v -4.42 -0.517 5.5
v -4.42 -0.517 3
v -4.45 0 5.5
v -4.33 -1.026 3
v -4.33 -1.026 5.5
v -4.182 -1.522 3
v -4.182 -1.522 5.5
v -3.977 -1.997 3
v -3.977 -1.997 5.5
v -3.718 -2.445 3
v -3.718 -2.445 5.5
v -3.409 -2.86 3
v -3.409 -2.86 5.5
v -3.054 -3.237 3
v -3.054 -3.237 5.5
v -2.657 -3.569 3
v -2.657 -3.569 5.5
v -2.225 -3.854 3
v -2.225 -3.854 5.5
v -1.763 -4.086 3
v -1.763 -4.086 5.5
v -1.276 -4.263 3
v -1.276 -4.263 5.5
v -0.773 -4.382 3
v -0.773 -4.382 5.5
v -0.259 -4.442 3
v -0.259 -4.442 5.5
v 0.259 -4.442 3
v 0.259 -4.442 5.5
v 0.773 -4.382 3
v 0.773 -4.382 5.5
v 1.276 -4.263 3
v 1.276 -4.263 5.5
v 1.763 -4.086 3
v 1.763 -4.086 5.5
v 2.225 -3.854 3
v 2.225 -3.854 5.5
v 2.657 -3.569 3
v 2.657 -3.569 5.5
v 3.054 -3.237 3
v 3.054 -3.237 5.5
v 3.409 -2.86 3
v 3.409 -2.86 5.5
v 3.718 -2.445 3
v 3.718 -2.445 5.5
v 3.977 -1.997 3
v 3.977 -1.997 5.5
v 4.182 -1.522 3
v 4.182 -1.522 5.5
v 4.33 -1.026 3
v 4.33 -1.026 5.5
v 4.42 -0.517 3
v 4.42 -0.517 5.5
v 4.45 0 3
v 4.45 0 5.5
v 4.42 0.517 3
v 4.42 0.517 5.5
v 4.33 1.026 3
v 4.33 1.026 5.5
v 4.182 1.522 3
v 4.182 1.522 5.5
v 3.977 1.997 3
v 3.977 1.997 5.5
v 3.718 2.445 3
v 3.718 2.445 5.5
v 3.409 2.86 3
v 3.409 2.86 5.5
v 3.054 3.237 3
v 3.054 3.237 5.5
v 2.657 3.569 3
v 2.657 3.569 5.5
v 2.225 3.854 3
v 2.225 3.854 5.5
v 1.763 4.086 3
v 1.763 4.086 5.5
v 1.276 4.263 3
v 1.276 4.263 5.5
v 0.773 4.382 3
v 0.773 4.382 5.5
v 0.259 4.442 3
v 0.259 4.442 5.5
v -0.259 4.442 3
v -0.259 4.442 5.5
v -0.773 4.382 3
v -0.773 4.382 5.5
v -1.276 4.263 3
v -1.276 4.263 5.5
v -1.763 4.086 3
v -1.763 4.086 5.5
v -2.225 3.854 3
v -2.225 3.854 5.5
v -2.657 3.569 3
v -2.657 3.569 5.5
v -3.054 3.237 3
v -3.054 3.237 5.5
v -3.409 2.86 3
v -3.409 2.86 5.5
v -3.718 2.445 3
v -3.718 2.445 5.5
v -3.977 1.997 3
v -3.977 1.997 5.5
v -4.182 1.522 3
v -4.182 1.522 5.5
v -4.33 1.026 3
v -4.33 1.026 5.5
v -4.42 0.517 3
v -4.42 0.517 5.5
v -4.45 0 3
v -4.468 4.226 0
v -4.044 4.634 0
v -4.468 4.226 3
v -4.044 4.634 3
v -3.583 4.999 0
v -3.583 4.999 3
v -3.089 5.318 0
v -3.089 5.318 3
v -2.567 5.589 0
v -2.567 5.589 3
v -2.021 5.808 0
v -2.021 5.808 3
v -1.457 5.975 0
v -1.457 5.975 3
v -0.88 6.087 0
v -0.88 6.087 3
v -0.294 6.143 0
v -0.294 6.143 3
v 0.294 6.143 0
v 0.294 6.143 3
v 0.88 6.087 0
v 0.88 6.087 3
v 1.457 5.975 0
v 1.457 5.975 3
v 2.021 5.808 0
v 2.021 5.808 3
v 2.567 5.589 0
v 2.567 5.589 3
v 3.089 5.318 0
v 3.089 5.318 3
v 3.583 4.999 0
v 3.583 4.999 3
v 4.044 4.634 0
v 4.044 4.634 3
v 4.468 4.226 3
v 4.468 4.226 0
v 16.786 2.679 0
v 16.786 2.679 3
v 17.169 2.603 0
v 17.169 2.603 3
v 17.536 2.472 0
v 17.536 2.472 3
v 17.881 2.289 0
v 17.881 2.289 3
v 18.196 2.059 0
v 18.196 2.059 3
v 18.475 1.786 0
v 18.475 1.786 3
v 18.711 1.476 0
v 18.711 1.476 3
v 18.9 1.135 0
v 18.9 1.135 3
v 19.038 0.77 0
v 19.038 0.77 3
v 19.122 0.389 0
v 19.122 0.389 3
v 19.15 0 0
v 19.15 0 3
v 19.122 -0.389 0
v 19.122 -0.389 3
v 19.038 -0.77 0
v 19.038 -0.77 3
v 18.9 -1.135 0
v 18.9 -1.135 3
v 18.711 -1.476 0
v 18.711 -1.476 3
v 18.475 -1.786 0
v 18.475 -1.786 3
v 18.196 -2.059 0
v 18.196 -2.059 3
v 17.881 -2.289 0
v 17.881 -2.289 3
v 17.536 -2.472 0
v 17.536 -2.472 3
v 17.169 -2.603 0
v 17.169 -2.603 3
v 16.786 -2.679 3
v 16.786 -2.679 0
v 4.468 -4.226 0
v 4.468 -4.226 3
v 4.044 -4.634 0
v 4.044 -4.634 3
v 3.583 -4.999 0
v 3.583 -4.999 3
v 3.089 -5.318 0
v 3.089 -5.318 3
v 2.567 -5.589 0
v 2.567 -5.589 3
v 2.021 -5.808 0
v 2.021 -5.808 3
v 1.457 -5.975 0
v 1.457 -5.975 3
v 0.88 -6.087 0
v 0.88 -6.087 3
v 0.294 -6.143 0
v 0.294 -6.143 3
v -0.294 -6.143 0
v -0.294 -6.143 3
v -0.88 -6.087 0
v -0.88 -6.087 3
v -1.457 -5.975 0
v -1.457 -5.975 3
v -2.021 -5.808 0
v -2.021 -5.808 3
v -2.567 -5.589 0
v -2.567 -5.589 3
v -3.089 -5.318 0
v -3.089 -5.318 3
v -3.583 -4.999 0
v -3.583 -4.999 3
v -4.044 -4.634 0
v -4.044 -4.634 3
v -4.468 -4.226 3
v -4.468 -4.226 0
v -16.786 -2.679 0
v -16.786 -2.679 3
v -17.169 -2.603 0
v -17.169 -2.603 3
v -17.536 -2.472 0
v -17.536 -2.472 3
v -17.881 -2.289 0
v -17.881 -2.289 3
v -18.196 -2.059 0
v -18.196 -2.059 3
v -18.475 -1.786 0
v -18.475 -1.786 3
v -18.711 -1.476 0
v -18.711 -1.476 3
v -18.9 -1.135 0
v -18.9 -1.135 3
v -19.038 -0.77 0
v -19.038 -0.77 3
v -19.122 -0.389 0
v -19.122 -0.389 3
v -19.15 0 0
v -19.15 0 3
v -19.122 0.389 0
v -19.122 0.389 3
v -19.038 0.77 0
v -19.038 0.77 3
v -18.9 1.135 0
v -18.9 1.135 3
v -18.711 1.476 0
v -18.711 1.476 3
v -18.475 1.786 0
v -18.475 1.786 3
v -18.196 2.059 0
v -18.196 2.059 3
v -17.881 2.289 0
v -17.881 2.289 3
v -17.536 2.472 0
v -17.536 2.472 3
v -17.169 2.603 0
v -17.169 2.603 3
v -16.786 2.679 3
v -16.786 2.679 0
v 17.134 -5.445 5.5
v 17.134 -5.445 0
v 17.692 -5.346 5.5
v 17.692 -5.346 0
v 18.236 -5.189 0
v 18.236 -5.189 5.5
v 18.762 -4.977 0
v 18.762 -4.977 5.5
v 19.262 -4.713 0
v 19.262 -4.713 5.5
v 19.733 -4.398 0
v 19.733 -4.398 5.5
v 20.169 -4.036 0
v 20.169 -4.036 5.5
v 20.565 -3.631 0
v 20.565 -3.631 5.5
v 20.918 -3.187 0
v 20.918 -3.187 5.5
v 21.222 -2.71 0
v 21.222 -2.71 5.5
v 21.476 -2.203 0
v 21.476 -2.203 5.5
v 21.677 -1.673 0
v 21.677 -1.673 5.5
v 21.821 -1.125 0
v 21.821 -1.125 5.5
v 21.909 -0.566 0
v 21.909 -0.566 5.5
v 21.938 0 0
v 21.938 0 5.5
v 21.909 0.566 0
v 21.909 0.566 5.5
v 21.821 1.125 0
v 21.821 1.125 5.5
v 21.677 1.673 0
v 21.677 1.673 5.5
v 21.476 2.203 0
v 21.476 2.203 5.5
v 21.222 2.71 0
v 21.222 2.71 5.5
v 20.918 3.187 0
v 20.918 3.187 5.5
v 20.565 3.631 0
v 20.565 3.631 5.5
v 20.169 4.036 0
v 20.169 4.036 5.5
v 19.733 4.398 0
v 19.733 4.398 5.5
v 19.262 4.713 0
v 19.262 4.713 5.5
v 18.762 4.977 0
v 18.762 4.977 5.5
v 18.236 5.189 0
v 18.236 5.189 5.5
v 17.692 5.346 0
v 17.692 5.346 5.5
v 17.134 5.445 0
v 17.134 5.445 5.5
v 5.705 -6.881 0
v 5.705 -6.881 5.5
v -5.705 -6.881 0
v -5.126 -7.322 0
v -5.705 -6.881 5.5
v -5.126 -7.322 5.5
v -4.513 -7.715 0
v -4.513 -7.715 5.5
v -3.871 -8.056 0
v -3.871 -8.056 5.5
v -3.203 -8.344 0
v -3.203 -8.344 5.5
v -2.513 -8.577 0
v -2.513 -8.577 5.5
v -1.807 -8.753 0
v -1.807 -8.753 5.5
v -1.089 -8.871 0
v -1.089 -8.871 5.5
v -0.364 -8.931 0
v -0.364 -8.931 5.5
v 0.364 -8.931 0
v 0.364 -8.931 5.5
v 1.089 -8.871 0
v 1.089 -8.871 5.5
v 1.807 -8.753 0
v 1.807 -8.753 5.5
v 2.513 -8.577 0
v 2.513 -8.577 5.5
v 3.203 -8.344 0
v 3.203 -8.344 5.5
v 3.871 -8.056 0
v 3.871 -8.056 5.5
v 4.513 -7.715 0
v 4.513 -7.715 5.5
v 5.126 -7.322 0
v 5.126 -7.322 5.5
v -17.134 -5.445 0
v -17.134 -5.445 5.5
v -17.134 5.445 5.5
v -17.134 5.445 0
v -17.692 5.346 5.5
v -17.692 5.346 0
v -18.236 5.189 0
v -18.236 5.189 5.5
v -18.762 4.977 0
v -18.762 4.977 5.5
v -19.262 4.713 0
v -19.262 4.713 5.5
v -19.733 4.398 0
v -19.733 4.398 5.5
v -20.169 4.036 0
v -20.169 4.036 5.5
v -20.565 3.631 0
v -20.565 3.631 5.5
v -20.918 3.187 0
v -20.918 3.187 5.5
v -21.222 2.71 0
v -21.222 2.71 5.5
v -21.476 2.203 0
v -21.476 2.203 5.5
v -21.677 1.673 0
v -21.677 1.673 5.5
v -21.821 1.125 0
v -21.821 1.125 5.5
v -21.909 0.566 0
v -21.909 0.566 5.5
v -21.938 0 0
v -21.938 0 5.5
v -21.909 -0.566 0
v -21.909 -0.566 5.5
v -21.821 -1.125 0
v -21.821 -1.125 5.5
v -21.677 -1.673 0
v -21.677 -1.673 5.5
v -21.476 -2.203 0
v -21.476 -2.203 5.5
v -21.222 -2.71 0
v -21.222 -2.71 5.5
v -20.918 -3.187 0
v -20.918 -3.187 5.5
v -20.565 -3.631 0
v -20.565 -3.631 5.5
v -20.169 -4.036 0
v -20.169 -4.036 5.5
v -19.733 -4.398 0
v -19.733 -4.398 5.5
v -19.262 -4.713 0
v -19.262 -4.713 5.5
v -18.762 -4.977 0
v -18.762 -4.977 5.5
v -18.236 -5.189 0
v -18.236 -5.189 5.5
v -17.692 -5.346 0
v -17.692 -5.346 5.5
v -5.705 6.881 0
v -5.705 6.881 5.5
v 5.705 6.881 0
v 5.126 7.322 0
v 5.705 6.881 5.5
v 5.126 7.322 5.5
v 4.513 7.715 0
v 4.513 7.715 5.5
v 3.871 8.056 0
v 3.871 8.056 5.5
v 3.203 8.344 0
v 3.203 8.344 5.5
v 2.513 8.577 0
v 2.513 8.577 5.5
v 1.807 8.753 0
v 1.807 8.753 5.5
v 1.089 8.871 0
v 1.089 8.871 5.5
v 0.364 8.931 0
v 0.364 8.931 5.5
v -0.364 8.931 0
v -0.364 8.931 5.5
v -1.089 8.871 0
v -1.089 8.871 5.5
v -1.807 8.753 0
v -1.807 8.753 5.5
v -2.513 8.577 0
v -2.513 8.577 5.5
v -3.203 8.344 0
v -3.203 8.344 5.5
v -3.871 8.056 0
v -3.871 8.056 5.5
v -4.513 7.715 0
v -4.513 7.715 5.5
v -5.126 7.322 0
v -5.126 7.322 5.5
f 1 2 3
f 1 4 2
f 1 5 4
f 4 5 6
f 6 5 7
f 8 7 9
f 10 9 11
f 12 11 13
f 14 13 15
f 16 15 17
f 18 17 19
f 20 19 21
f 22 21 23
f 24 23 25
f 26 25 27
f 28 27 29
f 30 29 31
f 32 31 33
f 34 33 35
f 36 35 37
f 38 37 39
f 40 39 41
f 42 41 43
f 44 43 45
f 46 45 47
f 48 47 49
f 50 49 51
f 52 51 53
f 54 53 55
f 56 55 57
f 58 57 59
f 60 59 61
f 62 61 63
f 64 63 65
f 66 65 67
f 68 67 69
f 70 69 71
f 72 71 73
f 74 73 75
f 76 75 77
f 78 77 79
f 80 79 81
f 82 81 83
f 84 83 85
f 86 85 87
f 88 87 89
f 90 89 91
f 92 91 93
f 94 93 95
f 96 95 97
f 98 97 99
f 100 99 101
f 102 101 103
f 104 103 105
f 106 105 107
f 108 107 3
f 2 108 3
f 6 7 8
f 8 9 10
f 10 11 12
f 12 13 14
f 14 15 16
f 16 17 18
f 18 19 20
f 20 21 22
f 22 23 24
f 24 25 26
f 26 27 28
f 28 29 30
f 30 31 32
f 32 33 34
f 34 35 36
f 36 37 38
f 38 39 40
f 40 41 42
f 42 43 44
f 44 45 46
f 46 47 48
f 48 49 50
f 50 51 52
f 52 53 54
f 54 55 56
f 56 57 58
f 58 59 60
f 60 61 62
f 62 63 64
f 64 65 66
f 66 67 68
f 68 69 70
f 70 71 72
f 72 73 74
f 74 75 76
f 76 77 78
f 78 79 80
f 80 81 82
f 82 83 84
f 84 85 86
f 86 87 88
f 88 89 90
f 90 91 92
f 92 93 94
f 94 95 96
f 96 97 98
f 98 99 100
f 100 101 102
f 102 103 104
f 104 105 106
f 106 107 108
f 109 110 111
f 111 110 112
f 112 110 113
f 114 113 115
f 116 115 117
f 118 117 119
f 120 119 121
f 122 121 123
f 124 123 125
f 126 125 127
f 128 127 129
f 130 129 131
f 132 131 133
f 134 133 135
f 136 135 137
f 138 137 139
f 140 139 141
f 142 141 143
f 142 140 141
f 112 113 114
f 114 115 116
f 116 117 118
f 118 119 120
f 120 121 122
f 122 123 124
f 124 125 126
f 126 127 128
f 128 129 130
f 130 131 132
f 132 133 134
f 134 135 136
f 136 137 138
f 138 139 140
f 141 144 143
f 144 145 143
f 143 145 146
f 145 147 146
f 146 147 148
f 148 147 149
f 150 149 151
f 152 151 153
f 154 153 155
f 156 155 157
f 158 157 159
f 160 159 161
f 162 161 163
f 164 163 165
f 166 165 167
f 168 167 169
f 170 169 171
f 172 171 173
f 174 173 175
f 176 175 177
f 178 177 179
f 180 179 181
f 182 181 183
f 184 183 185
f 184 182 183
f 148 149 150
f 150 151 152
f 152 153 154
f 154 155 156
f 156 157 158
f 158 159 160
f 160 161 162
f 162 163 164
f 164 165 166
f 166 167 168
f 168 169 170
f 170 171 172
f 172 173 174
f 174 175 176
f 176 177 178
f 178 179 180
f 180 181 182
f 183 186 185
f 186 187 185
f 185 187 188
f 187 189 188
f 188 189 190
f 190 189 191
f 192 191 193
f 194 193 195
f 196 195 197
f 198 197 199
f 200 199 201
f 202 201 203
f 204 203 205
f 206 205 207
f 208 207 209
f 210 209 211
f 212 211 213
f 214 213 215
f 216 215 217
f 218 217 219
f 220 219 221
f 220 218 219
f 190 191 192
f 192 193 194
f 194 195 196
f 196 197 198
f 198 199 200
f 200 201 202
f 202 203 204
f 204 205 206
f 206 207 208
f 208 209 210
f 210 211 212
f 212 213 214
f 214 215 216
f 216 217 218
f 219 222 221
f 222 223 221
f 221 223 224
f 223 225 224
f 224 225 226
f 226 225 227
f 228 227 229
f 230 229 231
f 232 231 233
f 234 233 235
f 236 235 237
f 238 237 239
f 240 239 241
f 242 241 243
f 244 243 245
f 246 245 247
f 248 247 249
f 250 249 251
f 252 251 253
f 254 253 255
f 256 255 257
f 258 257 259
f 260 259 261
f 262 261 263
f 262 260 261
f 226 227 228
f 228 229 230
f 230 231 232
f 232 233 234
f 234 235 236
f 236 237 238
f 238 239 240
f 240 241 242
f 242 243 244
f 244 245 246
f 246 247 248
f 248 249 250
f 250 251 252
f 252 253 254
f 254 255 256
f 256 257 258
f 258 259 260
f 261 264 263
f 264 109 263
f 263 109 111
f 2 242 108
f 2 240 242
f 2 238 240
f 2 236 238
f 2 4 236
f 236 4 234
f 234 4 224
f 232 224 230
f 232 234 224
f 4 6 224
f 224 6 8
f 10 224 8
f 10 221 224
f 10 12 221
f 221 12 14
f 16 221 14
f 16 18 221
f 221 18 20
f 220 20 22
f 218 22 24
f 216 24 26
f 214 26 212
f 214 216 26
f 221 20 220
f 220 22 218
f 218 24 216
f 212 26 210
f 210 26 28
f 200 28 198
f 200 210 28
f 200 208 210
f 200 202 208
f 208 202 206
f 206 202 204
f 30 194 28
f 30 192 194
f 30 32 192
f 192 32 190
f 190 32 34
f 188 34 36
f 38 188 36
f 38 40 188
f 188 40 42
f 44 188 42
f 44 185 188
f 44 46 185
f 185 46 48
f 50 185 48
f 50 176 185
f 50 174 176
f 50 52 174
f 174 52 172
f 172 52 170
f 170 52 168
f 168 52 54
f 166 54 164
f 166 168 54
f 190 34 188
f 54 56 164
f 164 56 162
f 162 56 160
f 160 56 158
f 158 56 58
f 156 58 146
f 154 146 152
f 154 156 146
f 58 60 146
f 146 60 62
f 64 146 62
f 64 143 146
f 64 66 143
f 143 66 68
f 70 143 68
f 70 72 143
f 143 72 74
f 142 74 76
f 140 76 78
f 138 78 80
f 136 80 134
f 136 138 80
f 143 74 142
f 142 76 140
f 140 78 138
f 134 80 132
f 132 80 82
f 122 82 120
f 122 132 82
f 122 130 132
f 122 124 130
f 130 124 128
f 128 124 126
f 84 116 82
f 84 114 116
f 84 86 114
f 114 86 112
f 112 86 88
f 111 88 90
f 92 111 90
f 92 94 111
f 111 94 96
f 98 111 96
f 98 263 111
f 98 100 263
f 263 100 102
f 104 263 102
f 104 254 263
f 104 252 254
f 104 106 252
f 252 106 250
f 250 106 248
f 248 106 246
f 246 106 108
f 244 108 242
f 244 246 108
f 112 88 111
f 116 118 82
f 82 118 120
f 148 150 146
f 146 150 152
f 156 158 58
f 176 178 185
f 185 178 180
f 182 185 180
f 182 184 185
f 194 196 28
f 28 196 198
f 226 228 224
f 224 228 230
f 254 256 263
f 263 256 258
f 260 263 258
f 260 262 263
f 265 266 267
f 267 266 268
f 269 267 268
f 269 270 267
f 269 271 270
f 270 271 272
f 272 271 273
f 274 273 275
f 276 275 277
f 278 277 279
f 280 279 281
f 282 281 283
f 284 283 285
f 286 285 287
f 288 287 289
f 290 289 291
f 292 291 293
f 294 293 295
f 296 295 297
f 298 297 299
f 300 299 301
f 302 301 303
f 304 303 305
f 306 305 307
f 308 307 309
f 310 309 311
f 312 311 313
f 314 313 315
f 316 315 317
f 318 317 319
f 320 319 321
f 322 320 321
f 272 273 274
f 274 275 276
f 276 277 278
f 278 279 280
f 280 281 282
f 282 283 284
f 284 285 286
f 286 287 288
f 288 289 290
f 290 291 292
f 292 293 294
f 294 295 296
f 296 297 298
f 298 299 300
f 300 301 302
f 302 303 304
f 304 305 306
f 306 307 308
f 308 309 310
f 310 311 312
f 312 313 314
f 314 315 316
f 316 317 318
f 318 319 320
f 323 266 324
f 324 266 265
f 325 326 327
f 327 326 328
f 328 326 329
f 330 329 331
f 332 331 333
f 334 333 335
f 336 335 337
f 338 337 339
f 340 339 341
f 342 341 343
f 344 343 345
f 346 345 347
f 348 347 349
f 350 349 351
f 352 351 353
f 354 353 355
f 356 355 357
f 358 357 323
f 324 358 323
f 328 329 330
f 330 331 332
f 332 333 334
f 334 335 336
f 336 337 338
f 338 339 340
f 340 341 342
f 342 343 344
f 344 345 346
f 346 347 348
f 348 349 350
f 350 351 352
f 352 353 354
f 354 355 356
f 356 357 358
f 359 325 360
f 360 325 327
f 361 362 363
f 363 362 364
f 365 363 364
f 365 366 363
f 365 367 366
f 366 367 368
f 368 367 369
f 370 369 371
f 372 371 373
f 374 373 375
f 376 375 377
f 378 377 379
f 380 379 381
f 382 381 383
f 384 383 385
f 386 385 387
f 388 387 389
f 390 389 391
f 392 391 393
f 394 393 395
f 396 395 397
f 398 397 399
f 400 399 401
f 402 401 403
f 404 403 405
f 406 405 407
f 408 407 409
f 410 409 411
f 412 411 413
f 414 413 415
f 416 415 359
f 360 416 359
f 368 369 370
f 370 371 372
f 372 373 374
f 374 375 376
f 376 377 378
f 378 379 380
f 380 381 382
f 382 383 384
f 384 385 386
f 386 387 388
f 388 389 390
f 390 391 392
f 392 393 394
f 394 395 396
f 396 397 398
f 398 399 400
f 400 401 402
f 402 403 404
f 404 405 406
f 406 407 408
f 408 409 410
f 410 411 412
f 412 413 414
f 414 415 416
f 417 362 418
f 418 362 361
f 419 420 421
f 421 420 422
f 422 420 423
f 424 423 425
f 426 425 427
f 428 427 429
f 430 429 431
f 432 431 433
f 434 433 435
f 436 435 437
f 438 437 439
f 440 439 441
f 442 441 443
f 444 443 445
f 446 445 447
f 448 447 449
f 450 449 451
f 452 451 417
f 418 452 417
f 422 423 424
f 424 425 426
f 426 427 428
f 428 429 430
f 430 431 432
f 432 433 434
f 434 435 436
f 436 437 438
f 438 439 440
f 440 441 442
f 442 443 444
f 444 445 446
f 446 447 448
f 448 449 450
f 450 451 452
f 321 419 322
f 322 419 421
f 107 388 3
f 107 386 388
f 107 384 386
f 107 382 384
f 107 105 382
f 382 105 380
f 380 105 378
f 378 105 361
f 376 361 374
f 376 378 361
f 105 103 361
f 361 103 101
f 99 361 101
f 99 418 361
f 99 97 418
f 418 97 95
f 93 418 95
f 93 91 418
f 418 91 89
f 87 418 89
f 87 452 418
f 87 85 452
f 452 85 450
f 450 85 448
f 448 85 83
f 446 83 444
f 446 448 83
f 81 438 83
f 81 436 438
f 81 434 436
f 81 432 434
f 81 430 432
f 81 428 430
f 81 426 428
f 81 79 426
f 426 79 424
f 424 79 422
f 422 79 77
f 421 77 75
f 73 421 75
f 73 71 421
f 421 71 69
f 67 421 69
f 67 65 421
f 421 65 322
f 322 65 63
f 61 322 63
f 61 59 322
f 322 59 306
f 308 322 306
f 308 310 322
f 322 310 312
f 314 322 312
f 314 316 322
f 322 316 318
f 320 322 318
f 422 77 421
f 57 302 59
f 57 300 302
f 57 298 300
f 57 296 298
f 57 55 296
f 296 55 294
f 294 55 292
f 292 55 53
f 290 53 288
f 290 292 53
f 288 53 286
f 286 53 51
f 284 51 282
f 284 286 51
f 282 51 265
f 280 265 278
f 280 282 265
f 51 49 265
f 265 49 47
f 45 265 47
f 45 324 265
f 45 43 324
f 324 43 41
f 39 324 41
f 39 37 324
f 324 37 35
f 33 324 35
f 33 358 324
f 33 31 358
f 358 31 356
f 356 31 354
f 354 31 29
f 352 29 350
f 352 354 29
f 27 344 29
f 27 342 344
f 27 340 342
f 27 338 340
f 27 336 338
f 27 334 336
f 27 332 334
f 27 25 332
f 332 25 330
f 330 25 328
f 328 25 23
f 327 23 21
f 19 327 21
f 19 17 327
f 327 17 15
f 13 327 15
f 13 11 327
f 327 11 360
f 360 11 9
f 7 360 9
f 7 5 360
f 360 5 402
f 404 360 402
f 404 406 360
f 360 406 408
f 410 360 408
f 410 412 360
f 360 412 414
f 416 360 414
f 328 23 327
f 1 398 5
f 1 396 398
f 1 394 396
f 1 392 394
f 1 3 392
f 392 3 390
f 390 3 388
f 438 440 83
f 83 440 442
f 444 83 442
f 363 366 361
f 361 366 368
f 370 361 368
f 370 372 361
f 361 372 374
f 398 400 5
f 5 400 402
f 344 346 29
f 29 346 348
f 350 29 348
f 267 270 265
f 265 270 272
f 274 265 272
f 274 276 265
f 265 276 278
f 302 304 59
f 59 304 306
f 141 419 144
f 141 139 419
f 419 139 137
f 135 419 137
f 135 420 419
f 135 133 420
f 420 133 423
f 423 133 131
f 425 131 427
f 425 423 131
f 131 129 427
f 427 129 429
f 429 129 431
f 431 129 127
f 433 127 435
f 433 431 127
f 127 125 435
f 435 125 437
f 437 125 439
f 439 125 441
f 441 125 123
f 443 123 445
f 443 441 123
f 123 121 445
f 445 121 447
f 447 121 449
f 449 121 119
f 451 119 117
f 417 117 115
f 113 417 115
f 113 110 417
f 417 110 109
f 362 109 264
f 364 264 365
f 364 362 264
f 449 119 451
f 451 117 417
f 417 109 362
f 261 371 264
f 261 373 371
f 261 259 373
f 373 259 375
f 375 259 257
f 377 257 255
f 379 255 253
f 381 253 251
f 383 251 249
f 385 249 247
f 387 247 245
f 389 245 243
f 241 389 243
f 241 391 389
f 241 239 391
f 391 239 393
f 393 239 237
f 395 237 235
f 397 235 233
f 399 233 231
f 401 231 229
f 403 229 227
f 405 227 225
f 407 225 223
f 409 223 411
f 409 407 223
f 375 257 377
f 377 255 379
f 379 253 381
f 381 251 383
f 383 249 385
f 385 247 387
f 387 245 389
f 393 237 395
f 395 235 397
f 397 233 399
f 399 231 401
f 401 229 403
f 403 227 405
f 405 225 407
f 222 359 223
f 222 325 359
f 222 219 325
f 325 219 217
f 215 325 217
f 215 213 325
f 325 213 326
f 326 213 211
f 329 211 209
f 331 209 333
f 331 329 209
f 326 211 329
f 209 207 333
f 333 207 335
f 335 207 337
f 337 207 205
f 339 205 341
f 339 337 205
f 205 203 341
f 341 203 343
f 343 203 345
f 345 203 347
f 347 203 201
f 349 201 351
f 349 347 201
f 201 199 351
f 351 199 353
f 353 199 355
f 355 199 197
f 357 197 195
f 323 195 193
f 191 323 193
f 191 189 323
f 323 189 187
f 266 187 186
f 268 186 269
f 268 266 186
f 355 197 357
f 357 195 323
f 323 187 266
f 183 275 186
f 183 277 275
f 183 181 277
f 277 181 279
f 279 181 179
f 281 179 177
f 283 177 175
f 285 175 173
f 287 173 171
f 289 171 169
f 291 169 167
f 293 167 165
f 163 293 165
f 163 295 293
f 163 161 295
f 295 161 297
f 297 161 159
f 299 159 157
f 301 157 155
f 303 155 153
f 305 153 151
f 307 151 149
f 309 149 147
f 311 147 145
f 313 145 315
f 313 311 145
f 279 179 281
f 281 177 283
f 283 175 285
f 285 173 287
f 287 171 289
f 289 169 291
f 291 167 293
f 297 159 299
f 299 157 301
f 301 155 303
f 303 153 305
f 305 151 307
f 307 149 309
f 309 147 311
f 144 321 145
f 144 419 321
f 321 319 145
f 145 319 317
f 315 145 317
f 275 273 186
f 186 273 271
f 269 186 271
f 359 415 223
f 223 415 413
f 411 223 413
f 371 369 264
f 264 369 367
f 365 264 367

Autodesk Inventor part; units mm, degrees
ref_plane "YZ Plane" through (0, 0, 0) normal (1, 0, 0) x (0, 1, 0)
ref_plane "XY Plane" through (0, 0, 0) normal (0, 0, 1) x (1, 0, 0)
sketch "bASE" plane through (0, 0, 0) normal (0, 0, 1) x (1, 0, 0)
  arc A0 (-16.7865, 2.679) -> (-16.7865, -2.679) centre (-16.45, 0) ccw
  arc A1 (16.7865, -2.679) -> (16.7865, 2.679) centre (16.45, 0) ccw
  line L0 (4.4678, -4.2262) -> (16.7865, -2.679)
  line L1 (4.4678, 4.2262) -> (16.7865, 2.679)
  line L2 (-4.4678, 4.2262) -> (-16.7865, 2.679)
  line L3 (-4.4678, -4.2262) -> (-16.7865, -2.679)
  arc A2 (-4.4678, -4.2262) -> (4.4678, -4.2262) centre (0, 0) ccw
  arc A3 (4.4678, 4.2262) -> (-4.4678, 4.2262) centre (0, 0) ccw
  point P0 (0, 4.2262)
  dimension "d20" = 5.4
  dimension "d21" = 5.4
sketch "Coupling" plane through (0, 0, 0) normal (0, 0, 1) x (1, 0, 0)
  line L0 (-4.4678, 4.2262) -> (-16.7865, 2.679) projected
  arc A0 (4.4678, 4.2262) -> (-4.4678, 4.2262) centre (0, 0) ccw projected
  line L1 (4.4678, 4.2262) -> (16.7865, 2.679) projected
  arc A1 (16.7865, -2.679) -> (16.7865, 2.679) centre (16.45, 0) ccw projected
  line L2 (4.4678, -4.2262) -> (16.7865, -2.679) projected
  arc A2 (-4.4678, -4.2262) -> (4.4678, -4.2262) centre (0, 0) ccw projected
  line L3 (-4.4678, -4.2262) -> (-16.7865, -2.679) projected
  arc A3 (-16.7865, 2.679) -> (-16.7865, -2.679) centre (-16.45, 0) ccw projected
  line L4 (17.1339, 5.4452) -> (5.7046, 6.8807)
  arc A4 (5.7046, 6.8807) -> (-5.7046, 6.8807) centre (0, 0) ccw
  line L5 (-5.7046, 6.8807) -> (-17.1339, 5.4452)
  arc A5 (-17.1339, 5.4452) -> (-17.1339, -5.4452) centre (-16.45, 0) ccw
  line L6 (-17.1339, -5.4452) -> (-5.7046, -6.8807)
  arc A6 (-5.7046, -6.8807) -> (5.7046, -6.8807) centre (0, 0) ccw
  line L7 (5.7046, -6.8807) -> (17.1339, -5.4452)
  arc A7 (17.1339, -5.4452) -> (17.1339, 5.4452) centre (16.45, 0) ccw
extrude "Extrusion7" add sketch "Coupling" along normal blind 5.5 contours A0 L1 A1 L2 A2 L3 A3 L0 | A7 L7 A6 L6 A5 L5 A4 L4
extrude "Extrusion8" cut sketch "bASE" along normal blind 3
sketch "Sketch8" plane through (0, 0, 3) normal (0, 0, -1) x (-1, 0, 0)
  arc A0 (-4.4678, -4.2262) -> (4.4678, -4.2262) centre (0, 0) ccw projected
  circle A1 centre (0, 0) radius 4.45
  dimension "d26" = 8.9
extrude "Extrusion9" cut sketch "Sketch8" against normal blind 3
ref_plane "ConstraintPlane" through (0, 0, 0) normal (0, 1, 0) x (-1, 0, 0)
properties part number "ServoHornPocket"
